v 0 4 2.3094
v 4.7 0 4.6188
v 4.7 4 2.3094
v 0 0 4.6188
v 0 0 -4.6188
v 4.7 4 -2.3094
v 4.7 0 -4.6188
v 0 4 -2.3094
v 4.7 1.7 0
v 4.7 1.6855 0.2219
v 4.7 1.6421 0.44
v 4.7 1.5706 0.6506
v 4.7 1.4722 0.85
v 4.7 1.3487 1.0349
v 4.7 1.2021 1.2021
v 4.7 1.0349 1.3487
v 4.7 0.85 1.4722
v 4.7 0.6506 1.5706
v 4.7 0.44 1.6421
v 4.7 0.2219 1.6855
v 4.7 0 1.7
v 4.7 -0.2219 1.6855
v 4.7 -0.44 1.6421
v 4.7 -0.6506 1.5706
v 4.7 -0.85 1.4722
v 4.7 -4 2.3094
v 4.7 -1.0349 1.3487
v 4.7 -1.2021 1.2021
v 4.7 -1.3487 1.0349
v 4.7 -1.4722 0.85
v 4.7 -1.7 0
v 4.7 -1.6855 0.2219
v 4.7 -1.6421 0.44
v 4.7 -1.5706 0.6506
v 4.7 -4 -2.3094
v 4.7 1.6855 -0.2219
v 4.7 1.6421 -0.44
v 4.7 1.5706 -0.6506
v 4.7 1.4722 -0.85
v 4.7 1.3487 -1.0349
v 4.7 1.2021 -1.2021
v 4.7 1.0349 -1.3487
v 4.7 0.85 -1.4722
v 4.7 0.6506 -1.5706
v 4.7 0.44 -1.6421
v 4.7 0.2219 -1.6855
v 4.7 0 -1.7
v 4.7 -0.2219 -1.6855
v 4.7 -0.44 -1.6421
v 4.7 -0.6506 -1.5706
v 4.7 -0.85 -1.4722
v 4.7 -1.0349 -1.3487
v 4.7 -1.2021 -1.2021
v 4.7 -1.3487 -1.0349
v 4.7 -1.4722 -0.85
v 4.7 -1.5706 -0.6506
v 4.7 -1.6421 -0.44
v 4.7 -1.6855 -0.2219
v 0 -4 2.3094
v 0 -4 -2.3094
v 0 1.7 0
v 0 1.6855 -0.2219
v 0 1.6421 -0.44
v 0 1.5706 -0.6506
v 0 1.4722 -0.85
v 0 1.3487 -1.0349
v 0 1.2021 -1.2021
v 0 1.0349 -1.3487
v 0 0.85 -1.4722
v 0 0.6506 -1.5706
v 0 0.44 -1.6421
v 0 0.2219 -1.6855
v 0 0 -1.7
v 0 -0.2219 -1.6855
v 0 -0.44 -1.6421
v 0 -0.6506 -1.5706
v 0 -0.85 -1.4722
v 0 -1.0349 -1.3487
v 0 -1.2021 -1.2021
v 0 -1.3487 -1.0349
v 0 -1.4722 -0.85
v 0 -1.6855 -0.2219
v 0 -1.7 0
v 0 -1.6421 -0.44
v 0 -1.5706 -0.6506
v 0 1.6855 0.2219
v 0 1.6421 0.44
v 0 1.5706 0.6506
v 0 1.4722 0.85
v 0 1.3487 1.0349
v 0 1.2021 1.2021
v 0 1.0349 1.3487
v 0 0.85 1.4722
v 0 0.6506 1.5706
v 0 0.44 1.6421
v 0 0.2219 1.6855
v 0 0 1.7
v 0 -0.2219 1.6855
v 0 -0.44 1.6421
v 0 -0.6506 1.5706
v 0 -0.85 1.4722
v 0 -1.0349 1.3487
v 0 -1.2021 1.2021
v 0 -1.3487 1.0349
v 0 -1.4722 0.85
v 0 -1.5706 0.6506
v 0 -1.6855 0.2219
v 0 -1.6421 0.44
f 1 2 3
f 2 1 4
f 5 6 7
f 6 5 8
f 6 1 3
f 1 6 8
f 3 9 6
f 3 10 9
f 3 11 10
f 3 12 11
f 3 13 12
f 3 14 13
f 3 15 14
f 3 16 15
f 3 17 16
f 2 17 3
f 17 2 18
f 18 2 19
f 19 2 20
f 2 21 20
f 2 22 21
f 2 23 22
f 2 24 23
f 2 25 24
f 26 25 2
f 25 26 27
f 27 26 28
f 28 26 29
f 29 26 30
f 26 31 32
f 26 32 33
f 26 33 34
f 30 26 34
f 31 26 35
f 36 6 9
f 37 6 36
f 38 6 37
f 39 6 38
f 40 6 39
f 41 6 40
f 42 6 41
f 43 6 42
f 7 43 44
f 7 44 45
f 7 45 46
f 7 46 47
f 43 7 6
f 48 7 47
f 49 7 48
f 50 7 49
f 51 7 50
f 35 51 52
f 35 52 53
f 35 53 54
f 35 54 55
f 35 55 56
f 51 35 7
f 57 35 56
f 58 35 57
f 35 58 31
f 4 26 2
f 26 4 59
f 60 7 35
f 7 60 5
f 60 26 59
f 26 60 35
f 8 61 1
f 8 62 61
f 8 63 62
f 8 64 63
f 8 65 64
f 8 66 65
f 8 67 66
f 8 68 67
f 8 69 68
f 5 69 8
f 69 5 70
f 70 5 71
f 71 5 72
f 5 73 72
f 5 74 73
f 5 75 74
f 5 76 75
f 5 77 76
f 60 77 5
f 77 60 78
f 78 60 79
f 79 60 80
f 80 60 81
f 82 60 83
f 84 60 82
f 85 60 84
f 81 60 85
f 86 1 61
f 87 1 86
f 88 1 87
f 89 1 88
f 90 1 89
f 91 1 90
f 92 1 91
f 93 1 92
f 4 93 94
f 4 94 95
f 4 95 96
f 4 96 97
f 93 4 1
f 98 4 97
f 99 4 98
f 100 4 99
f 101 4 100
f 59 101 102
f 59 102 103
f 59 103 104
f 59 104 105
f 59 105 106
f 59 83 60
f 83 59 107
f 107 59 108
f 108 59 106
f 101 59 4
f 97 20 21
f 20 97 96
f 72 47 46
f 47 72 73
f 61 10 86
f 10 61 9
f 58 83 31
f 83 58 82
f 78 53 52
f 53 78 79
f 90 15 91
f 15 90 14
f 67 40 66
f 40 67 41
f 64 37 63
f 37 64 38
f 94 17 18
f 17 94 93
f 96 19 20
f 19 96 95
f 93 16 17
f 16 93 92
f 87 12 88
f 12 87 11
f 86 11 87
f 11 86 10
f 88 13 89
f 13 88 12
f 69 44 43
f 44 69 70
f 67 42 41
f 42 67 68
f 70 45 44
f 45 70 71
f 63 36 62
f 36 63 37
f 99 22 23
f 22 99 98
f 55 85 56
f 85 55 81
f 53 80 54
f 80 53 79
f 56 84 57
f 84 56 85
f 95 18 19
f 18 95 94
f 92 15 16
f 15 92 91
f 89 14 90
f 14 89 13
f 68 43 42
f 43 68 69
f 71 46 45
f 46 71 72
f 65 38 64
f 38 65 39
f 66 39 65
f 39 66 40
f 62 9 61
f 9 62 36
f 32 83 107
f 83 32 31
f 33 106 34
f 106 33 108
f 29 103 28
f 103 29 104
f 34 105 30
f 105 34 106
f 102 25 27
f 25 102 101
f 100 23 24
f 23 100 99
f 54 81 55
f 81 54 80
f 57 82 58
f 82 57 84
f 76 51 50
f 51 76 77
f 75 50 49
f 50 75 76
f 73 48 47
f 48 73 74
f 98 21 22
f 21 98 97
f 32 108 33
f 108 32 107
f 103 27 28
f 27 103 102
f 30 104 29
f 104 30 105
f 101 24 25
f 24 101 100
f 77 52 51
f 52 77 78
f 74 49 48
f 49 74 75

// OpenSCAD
// file: ../../lib/nutsnbolts/data-access.scad
// Norm Nuts and Bolts - a OpenSCAD library
// Copyright (C) 2012  Johannes Kneer

// This program is free software: you can redistribute it and/or modify
// it under the terms of the GNU General Public License as published by
// the Free Software Foundation, either version 3 of the License, or
// (at your option) any later version.

// This program is distributed in the hope that it will be useful,
// but WITHOUT ANY WARRANTY; without even the implied warranty of
// MERCHANTABILITY or FITNESS FOR A PARTICULAR PURPOSE.  See the
// GNU General Public License for more details.

// You should have received a copy of the GNU General Public License
// along with this program.  If not, see <http://www.gnu.org/licenses/>.


// DATABASE ACCESS FUNCTIONS AND CONSTANTS



// == CONSTANTS ==

// screw table access keys
_NB_S_DESC            = 0;
_NB_S_FAMKEY			    = 1;
_NB_S_LENGTH          = 2;
_NB_S_NOTHREAD_LENGTH = 3;

_NB_F_DESC			      = 0;
_NB_F_OUTER_DIA       = 1;
_NB_F_INNER_DIA       = 2;
_NB_F_LEAD            = 3;
_NB_F_KEY             = 4;
_NB_F_KEY_DEPTH       = 5;
_NB_F_HEAD_HEIGHT     = 6;
_NB_F_HEAD_DIA        = 7;
_NB_F_NUT_KEY         = 8;
_NB_F_NUT_HEIGHT      = 9;
_NB_F_PITCH_FINE      = 10;
_NB_F_PITCH_MEDIUM    = 11;
_NB_F_PITCH_COARSE    = 12;


// == FUNCTIONS ==

// _get_screw("descriptor")   with descriptor = M8x25
//   find the line for a general object in the data matrix

function _get_screw(n) = data_screw[search([n], data_screw)[0]];
function _get_screw_fam(n) = data_screw_fam[search([_get_screw(n)[_NB_S_FAMKEY]], data_screw_fam)[0]];

function _get_fam(n) = data_screw_fam[search([n], data_screw_fam)[0]];


// _get_XXXXX("descriptor") functions
// find a single property in the database

function _get_desc(n)        = _get_screw(n)[_NB_S_DESC];
function _get_famkey(n)         = _get_screw(n)[_NB_S_FAMKEY];
function _get_length(n)      = _get_screw(n)[_NB_S_LENGTH];
function _get_nt_length(n)   = _get_screw(n)[_NB_S_NOTHREAD_LENGTH];

function _get_outer_dia(n)   = _get_screw_fam(n)[_NB_F_OUTER_DIA];
function _get_inner_dia(n)   = _get_screw_fam(n)[_NB_F_INNER_DIA];
function _get_lead(n)        = _get_screw_fam(n)[_NB_F_LEAD];
function _get_head_height(n) = _get_screw_fam(n)[_NB_F_HEAD_HEIGHT];
function _get_head_dia(n)    = _get_screw_fam(n)[_NB_F_HEAD_DIA];
function _get_nut_key(n)     = _get_screw_fam(n)[_NB_F_NUT_KEY];
function _get_nut_height(n)  = _get_screw_fam(n)[_NB_F_NUT_HEIGHT];
function _get_fine_pitch(n)  = _get_screw_fam(n)[_NB_F_PITCH_FINE];
function _get_medium_pitch(n)  = _get_screw_fam(n)[_NB_F_PITCH_MEDIUM];
function _get_coarse_pitch(n)  = _get_screw_fam(n)[_NB_F_PITCH_COARSE];
// main file
/**********************************************************************************************************************
 **
 ** parts/vitamins/nut_M5.scad
 **
 ** This file renders a nut of the dimensions specified by the file name.
 **
 **********************************************************************************************************************/

include <../../lib/nutsnbolts/cyl_head_bolt.scad>;

$fn = 48;
rotate([0, -90, 0])
	nut("M5"); 
